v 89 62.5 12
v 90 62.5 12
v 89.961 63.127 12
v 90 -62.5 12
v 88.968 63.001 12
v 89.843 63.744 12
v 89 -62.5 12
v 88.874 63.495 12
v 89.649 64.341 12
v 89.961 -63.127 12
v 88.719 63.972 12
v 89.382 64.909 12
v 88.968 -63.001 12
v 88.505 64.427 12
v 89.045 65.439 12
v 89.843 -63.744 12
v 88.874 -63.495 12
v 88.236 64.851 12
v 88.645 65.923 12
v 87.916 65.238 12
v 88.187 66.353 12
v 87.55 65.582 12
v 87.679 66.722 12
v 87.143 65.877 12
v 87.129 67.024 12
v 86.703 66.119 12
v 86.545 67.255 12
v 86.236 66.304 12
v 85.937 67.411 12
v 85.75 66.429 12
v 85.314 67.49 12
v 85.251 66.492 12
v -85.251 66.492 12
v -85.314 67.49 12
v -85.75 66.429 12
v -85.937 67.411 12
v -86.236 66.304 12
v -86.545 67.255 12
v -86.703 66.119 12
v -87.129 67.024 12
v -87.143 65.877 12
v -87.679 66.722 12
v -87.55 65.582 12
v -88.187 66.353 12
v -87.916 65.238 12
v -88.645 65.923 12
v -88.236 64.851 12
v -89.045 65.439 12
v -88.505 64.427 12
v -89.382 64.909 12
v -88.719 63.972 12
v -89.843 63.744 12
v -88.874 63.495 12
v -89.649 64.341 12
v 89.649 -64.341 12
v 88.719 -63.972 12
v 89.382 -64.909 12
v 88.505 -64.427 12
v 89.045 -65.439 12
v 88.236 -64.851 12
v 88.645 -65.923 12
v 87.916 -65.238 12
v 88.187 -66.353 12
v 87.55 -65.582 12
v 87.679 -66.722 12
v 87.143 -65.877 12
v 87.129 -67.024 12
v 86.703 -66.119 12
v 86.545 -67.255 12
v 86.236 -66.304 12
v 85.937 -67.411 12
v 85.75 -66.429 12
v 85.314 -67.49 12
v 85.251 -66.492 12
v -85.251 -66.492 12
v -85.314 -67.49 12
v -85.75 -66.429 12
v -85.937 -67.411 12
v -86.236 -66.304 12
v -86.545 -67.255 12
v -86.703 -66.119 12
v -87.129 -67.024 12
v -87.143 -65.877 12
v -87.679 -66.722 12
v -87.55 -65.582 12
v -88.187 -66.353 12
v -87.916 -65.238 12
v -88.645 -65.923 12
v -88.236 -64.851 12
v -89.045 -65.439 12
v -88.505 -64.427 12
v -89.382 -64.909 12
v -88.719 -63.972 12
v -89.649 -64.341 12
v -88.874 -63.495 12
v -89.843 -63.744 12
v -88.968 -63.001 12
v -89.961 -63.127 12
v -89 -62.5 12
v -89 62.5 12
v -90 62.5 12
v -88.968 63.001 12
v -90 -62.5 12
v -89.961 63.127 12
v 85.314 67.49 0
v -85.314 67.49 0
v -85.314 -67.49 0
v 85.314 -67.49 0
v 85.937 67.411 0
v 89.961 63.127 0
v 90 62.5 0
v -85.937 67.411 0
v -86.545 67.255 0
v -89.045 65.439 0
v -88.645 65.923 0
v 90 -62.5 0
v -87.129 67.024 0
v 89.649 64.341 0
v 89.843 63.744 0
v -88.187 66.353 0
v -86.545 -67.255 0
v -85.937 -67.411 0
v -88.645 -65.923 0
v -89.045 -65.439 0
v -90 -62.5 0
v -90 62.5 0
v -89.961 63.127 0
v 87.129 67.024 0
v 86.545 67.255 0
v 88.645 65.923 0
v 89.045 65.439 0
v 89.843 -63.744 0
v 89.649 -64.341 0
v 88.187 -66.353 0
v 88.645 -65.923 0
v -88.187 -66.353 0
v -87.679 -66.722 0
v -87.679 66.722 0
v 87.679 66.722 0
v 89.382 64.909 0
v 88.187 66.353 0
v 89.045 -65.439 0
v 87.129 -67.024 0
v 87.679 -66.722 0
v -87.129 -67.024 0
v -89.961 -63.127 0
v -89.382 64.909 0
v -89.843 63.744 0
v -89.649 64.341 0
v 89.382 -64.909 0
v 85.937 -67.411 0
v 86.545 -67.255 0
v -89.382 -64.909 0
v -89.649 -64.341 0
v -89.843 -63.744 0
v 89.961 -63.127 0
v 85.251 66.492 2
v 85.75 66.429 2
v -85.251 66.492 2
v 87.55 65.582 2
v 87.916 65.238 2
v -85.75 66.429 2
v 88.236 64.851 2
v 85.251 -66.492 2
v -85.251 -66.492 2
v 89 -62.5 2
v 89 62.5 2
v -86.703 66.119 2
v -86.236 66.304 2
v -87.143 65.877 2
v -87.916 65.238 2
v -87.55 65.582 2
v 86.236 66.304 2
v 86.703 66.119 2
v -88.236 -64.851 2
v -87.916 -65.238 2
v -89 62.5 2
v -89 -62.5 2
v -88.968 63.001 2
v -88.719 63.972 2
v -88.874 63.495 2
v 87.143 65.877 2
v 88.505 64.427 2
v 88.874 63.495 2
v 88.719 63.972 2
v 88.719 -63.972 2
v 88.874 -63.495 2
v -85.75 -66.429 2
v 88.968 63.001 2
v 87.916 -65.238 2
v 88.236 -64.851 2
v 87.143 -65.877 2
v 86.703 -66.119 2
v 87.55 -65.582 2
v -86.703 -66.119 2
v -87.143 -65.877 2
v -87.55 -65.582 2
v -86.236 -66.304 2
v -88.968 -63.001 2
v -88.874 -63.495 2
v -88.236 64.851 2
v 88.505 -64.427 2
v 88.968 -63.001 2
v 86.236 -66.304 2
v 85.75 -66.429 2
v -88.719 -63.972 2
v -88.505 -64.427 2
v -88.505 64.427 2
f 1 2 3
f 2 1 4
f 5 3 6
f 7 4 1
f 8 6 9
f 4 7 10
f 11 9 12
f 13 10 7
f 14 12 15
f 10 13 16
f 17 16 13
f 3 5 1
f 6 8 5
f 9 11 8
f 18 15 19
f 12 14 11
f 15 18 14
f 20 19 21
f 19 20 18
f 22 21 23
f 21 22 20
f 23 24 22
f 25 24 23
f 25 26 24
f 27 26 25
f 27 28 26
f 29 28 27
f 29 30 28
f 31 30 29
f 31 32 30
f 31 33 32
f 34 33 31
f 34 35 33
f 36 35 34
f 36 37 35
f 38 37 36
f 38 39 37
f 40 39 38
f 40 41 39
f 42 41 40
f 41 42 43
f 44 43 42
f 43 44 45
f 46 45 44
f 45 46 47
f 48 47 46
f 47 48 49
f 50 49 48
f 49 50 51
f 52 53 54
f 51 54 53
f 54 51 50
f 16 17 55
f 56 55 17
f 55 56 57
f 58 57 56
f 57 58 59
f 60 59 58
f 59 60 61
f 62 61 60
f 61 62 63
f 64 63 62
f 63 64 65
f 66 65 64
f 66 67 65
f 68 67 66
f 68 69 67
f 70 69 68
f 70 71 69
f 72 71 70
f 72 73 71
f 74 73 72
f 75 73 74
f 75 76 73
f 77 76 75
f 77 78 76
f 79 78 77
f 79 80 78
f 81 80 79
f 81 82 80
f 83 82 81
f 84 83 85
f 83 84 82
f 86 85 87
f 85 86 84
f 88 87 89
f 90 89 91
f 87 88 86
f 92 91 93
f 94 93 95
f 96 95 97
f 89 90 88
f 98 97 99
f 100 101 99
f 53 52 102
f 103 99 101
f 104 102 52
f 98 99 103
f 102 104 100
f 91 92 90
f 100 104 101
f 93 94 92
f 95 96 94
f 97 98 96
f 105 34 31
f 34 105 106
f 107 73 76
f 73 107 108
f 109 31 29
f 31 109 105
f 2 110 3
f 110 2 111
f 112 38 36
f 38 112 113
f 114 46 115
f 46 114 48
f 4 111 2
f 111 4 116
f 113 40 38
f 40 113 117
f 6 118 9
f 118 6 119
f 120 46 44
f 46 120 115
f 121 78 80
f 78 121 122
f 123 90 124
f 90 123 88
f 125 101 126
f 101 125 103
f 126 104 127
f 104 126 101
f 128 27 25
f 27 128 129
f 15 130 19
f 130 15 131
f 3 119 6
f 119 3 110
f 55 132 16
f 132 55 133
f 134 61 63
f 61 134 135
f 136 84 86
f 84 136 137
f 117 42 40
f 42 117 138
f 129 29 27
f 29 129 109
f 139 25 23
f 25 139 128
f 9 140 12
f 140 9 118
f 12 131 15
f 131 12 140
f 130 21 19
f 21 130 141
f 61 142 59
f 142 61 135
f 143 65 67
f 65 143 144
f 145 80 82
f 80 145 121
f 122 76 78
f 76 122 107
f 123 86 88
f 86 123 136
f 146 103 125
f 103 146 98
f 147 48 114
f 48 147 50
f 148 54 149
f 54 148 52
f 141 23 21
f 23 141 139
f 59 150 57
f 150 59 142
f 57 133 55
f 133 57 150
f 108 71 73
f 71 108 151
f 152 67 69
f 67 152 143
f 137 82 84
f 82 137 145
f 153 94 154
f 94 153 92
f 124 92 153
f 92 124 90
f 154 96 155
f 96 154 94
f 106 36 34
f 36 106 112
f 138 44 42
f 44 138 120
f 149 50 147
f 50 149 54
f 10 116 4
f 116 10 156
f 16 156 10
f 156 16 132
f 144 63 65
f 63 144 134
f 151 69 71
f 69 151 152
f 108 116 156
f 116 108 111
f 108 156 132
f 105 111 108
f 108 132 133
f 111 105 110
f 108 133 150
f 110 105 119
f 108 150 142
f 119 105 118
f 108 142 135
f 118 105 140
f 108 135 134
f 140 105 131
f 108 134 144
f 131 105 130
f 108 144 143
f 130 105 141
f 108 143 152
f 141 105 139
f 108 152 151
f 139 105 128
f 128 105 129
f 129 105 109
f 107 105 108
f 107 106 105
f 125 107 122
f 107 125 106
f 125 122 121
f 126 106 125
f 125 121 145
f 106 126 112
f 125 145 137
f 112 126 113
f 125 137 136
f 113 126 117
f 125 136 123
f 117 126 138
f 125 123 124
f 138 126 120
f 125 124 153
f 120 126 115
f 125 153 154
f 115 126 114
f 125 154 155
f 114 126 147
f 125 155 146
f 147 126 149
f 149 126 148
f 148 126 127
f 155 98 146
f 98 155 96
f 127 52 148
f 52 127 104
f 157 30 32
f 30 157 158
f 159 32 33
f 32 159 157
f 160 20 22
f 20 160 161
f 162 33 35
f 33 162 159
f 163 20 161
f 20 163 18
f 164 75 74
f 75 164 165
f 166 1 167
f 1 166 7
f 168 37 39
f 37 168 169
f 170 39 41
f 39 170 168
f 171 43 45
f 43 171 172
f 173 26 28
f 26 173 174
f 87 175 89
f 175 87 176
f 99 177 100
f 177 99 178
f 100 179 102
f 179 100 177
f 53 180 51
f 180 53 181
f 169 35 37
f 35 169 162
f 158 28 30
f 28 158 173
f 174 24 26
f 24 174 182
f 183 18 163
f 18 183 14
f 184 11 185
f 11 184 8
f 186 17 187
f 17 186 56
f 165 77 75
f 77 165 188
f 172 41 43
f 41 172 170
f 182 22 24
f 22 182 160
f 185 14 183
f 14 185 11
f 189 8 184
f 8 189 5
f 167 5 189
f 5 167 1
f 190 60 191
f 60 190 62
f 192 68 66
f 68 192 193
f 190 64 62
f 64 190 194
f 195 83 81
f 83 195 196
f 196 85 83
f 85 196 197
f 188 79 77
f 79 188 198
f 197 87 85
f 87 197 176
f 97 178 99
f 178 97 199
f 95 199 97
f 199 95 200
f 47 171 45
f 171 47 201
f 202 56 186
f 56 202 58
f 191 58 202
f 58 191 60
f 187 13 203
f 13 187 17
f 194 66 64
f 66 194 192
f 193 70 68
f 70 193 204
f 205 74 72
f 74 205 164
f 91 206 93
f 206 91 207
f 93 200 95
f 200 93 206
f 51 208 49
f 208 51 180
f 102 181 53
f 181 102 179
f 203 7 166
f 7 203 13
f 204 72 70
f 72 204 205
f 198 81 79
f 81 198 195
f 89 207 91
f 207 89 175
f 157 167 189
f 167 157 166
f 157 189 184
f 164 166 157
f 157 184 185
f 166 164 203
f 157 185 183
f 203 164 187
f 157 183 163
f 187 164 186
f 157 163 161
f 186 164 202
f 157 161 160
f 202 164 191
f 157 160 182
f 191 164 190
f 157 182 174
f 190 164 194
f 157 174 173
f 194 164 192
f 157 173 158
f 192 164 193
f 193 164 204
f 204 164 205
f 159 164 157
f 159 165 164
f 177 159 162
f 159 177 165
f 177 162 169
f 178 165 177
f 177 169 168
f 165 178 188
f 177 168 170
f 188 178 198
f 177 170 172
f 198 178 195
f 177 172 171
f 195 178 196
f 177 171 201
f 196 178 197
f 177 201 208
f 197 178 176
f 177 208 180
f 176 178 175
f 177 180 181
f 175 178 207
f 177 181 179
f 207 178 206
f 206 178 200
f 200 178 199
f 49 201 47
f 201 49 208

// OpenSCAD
$fn = 50;


difference() {
	union() {
		hull() {
			translate(v = [-85.0000000000, 62.5000000000, 0]) {
				cylinder(h = 12, r = 5);
			}
			translate(v = [85.0000000000, 62.5000000000, 0]) {
				cylinder(h = 12, r = 5);
			}
			translate(v = [-85.0000000000, -62.5000000000, 0]) {
				cylinder(h = 12, r = 5);
			}
			translate(v = [85.0000000000, -62.5000000000, 0]) {
				cylinder(h = 12, r = 5);
			}
		}
	}
	union() {
		translate(v = [0, 0, 2]) {
			hull() {
				translate(v = [-85.0000000000, 62.5000000000, 0]) {
					cylinder(h = 10, r = 4);
				}
				translate(v = [85.0000000000, 62.5000000000, 0]) {
					cylinder(h = 10, r = 4);
				}
				translate(v = [-85.0000000000, -62.5000000000, 0]) {
					cylinder(h = 10, r = 4);
				}
				translate(v = [85.0000000000, -62.5000000000, 0]) {
					cylinder(h = 10, r = 4);
				}
			}
		}
	}
}
